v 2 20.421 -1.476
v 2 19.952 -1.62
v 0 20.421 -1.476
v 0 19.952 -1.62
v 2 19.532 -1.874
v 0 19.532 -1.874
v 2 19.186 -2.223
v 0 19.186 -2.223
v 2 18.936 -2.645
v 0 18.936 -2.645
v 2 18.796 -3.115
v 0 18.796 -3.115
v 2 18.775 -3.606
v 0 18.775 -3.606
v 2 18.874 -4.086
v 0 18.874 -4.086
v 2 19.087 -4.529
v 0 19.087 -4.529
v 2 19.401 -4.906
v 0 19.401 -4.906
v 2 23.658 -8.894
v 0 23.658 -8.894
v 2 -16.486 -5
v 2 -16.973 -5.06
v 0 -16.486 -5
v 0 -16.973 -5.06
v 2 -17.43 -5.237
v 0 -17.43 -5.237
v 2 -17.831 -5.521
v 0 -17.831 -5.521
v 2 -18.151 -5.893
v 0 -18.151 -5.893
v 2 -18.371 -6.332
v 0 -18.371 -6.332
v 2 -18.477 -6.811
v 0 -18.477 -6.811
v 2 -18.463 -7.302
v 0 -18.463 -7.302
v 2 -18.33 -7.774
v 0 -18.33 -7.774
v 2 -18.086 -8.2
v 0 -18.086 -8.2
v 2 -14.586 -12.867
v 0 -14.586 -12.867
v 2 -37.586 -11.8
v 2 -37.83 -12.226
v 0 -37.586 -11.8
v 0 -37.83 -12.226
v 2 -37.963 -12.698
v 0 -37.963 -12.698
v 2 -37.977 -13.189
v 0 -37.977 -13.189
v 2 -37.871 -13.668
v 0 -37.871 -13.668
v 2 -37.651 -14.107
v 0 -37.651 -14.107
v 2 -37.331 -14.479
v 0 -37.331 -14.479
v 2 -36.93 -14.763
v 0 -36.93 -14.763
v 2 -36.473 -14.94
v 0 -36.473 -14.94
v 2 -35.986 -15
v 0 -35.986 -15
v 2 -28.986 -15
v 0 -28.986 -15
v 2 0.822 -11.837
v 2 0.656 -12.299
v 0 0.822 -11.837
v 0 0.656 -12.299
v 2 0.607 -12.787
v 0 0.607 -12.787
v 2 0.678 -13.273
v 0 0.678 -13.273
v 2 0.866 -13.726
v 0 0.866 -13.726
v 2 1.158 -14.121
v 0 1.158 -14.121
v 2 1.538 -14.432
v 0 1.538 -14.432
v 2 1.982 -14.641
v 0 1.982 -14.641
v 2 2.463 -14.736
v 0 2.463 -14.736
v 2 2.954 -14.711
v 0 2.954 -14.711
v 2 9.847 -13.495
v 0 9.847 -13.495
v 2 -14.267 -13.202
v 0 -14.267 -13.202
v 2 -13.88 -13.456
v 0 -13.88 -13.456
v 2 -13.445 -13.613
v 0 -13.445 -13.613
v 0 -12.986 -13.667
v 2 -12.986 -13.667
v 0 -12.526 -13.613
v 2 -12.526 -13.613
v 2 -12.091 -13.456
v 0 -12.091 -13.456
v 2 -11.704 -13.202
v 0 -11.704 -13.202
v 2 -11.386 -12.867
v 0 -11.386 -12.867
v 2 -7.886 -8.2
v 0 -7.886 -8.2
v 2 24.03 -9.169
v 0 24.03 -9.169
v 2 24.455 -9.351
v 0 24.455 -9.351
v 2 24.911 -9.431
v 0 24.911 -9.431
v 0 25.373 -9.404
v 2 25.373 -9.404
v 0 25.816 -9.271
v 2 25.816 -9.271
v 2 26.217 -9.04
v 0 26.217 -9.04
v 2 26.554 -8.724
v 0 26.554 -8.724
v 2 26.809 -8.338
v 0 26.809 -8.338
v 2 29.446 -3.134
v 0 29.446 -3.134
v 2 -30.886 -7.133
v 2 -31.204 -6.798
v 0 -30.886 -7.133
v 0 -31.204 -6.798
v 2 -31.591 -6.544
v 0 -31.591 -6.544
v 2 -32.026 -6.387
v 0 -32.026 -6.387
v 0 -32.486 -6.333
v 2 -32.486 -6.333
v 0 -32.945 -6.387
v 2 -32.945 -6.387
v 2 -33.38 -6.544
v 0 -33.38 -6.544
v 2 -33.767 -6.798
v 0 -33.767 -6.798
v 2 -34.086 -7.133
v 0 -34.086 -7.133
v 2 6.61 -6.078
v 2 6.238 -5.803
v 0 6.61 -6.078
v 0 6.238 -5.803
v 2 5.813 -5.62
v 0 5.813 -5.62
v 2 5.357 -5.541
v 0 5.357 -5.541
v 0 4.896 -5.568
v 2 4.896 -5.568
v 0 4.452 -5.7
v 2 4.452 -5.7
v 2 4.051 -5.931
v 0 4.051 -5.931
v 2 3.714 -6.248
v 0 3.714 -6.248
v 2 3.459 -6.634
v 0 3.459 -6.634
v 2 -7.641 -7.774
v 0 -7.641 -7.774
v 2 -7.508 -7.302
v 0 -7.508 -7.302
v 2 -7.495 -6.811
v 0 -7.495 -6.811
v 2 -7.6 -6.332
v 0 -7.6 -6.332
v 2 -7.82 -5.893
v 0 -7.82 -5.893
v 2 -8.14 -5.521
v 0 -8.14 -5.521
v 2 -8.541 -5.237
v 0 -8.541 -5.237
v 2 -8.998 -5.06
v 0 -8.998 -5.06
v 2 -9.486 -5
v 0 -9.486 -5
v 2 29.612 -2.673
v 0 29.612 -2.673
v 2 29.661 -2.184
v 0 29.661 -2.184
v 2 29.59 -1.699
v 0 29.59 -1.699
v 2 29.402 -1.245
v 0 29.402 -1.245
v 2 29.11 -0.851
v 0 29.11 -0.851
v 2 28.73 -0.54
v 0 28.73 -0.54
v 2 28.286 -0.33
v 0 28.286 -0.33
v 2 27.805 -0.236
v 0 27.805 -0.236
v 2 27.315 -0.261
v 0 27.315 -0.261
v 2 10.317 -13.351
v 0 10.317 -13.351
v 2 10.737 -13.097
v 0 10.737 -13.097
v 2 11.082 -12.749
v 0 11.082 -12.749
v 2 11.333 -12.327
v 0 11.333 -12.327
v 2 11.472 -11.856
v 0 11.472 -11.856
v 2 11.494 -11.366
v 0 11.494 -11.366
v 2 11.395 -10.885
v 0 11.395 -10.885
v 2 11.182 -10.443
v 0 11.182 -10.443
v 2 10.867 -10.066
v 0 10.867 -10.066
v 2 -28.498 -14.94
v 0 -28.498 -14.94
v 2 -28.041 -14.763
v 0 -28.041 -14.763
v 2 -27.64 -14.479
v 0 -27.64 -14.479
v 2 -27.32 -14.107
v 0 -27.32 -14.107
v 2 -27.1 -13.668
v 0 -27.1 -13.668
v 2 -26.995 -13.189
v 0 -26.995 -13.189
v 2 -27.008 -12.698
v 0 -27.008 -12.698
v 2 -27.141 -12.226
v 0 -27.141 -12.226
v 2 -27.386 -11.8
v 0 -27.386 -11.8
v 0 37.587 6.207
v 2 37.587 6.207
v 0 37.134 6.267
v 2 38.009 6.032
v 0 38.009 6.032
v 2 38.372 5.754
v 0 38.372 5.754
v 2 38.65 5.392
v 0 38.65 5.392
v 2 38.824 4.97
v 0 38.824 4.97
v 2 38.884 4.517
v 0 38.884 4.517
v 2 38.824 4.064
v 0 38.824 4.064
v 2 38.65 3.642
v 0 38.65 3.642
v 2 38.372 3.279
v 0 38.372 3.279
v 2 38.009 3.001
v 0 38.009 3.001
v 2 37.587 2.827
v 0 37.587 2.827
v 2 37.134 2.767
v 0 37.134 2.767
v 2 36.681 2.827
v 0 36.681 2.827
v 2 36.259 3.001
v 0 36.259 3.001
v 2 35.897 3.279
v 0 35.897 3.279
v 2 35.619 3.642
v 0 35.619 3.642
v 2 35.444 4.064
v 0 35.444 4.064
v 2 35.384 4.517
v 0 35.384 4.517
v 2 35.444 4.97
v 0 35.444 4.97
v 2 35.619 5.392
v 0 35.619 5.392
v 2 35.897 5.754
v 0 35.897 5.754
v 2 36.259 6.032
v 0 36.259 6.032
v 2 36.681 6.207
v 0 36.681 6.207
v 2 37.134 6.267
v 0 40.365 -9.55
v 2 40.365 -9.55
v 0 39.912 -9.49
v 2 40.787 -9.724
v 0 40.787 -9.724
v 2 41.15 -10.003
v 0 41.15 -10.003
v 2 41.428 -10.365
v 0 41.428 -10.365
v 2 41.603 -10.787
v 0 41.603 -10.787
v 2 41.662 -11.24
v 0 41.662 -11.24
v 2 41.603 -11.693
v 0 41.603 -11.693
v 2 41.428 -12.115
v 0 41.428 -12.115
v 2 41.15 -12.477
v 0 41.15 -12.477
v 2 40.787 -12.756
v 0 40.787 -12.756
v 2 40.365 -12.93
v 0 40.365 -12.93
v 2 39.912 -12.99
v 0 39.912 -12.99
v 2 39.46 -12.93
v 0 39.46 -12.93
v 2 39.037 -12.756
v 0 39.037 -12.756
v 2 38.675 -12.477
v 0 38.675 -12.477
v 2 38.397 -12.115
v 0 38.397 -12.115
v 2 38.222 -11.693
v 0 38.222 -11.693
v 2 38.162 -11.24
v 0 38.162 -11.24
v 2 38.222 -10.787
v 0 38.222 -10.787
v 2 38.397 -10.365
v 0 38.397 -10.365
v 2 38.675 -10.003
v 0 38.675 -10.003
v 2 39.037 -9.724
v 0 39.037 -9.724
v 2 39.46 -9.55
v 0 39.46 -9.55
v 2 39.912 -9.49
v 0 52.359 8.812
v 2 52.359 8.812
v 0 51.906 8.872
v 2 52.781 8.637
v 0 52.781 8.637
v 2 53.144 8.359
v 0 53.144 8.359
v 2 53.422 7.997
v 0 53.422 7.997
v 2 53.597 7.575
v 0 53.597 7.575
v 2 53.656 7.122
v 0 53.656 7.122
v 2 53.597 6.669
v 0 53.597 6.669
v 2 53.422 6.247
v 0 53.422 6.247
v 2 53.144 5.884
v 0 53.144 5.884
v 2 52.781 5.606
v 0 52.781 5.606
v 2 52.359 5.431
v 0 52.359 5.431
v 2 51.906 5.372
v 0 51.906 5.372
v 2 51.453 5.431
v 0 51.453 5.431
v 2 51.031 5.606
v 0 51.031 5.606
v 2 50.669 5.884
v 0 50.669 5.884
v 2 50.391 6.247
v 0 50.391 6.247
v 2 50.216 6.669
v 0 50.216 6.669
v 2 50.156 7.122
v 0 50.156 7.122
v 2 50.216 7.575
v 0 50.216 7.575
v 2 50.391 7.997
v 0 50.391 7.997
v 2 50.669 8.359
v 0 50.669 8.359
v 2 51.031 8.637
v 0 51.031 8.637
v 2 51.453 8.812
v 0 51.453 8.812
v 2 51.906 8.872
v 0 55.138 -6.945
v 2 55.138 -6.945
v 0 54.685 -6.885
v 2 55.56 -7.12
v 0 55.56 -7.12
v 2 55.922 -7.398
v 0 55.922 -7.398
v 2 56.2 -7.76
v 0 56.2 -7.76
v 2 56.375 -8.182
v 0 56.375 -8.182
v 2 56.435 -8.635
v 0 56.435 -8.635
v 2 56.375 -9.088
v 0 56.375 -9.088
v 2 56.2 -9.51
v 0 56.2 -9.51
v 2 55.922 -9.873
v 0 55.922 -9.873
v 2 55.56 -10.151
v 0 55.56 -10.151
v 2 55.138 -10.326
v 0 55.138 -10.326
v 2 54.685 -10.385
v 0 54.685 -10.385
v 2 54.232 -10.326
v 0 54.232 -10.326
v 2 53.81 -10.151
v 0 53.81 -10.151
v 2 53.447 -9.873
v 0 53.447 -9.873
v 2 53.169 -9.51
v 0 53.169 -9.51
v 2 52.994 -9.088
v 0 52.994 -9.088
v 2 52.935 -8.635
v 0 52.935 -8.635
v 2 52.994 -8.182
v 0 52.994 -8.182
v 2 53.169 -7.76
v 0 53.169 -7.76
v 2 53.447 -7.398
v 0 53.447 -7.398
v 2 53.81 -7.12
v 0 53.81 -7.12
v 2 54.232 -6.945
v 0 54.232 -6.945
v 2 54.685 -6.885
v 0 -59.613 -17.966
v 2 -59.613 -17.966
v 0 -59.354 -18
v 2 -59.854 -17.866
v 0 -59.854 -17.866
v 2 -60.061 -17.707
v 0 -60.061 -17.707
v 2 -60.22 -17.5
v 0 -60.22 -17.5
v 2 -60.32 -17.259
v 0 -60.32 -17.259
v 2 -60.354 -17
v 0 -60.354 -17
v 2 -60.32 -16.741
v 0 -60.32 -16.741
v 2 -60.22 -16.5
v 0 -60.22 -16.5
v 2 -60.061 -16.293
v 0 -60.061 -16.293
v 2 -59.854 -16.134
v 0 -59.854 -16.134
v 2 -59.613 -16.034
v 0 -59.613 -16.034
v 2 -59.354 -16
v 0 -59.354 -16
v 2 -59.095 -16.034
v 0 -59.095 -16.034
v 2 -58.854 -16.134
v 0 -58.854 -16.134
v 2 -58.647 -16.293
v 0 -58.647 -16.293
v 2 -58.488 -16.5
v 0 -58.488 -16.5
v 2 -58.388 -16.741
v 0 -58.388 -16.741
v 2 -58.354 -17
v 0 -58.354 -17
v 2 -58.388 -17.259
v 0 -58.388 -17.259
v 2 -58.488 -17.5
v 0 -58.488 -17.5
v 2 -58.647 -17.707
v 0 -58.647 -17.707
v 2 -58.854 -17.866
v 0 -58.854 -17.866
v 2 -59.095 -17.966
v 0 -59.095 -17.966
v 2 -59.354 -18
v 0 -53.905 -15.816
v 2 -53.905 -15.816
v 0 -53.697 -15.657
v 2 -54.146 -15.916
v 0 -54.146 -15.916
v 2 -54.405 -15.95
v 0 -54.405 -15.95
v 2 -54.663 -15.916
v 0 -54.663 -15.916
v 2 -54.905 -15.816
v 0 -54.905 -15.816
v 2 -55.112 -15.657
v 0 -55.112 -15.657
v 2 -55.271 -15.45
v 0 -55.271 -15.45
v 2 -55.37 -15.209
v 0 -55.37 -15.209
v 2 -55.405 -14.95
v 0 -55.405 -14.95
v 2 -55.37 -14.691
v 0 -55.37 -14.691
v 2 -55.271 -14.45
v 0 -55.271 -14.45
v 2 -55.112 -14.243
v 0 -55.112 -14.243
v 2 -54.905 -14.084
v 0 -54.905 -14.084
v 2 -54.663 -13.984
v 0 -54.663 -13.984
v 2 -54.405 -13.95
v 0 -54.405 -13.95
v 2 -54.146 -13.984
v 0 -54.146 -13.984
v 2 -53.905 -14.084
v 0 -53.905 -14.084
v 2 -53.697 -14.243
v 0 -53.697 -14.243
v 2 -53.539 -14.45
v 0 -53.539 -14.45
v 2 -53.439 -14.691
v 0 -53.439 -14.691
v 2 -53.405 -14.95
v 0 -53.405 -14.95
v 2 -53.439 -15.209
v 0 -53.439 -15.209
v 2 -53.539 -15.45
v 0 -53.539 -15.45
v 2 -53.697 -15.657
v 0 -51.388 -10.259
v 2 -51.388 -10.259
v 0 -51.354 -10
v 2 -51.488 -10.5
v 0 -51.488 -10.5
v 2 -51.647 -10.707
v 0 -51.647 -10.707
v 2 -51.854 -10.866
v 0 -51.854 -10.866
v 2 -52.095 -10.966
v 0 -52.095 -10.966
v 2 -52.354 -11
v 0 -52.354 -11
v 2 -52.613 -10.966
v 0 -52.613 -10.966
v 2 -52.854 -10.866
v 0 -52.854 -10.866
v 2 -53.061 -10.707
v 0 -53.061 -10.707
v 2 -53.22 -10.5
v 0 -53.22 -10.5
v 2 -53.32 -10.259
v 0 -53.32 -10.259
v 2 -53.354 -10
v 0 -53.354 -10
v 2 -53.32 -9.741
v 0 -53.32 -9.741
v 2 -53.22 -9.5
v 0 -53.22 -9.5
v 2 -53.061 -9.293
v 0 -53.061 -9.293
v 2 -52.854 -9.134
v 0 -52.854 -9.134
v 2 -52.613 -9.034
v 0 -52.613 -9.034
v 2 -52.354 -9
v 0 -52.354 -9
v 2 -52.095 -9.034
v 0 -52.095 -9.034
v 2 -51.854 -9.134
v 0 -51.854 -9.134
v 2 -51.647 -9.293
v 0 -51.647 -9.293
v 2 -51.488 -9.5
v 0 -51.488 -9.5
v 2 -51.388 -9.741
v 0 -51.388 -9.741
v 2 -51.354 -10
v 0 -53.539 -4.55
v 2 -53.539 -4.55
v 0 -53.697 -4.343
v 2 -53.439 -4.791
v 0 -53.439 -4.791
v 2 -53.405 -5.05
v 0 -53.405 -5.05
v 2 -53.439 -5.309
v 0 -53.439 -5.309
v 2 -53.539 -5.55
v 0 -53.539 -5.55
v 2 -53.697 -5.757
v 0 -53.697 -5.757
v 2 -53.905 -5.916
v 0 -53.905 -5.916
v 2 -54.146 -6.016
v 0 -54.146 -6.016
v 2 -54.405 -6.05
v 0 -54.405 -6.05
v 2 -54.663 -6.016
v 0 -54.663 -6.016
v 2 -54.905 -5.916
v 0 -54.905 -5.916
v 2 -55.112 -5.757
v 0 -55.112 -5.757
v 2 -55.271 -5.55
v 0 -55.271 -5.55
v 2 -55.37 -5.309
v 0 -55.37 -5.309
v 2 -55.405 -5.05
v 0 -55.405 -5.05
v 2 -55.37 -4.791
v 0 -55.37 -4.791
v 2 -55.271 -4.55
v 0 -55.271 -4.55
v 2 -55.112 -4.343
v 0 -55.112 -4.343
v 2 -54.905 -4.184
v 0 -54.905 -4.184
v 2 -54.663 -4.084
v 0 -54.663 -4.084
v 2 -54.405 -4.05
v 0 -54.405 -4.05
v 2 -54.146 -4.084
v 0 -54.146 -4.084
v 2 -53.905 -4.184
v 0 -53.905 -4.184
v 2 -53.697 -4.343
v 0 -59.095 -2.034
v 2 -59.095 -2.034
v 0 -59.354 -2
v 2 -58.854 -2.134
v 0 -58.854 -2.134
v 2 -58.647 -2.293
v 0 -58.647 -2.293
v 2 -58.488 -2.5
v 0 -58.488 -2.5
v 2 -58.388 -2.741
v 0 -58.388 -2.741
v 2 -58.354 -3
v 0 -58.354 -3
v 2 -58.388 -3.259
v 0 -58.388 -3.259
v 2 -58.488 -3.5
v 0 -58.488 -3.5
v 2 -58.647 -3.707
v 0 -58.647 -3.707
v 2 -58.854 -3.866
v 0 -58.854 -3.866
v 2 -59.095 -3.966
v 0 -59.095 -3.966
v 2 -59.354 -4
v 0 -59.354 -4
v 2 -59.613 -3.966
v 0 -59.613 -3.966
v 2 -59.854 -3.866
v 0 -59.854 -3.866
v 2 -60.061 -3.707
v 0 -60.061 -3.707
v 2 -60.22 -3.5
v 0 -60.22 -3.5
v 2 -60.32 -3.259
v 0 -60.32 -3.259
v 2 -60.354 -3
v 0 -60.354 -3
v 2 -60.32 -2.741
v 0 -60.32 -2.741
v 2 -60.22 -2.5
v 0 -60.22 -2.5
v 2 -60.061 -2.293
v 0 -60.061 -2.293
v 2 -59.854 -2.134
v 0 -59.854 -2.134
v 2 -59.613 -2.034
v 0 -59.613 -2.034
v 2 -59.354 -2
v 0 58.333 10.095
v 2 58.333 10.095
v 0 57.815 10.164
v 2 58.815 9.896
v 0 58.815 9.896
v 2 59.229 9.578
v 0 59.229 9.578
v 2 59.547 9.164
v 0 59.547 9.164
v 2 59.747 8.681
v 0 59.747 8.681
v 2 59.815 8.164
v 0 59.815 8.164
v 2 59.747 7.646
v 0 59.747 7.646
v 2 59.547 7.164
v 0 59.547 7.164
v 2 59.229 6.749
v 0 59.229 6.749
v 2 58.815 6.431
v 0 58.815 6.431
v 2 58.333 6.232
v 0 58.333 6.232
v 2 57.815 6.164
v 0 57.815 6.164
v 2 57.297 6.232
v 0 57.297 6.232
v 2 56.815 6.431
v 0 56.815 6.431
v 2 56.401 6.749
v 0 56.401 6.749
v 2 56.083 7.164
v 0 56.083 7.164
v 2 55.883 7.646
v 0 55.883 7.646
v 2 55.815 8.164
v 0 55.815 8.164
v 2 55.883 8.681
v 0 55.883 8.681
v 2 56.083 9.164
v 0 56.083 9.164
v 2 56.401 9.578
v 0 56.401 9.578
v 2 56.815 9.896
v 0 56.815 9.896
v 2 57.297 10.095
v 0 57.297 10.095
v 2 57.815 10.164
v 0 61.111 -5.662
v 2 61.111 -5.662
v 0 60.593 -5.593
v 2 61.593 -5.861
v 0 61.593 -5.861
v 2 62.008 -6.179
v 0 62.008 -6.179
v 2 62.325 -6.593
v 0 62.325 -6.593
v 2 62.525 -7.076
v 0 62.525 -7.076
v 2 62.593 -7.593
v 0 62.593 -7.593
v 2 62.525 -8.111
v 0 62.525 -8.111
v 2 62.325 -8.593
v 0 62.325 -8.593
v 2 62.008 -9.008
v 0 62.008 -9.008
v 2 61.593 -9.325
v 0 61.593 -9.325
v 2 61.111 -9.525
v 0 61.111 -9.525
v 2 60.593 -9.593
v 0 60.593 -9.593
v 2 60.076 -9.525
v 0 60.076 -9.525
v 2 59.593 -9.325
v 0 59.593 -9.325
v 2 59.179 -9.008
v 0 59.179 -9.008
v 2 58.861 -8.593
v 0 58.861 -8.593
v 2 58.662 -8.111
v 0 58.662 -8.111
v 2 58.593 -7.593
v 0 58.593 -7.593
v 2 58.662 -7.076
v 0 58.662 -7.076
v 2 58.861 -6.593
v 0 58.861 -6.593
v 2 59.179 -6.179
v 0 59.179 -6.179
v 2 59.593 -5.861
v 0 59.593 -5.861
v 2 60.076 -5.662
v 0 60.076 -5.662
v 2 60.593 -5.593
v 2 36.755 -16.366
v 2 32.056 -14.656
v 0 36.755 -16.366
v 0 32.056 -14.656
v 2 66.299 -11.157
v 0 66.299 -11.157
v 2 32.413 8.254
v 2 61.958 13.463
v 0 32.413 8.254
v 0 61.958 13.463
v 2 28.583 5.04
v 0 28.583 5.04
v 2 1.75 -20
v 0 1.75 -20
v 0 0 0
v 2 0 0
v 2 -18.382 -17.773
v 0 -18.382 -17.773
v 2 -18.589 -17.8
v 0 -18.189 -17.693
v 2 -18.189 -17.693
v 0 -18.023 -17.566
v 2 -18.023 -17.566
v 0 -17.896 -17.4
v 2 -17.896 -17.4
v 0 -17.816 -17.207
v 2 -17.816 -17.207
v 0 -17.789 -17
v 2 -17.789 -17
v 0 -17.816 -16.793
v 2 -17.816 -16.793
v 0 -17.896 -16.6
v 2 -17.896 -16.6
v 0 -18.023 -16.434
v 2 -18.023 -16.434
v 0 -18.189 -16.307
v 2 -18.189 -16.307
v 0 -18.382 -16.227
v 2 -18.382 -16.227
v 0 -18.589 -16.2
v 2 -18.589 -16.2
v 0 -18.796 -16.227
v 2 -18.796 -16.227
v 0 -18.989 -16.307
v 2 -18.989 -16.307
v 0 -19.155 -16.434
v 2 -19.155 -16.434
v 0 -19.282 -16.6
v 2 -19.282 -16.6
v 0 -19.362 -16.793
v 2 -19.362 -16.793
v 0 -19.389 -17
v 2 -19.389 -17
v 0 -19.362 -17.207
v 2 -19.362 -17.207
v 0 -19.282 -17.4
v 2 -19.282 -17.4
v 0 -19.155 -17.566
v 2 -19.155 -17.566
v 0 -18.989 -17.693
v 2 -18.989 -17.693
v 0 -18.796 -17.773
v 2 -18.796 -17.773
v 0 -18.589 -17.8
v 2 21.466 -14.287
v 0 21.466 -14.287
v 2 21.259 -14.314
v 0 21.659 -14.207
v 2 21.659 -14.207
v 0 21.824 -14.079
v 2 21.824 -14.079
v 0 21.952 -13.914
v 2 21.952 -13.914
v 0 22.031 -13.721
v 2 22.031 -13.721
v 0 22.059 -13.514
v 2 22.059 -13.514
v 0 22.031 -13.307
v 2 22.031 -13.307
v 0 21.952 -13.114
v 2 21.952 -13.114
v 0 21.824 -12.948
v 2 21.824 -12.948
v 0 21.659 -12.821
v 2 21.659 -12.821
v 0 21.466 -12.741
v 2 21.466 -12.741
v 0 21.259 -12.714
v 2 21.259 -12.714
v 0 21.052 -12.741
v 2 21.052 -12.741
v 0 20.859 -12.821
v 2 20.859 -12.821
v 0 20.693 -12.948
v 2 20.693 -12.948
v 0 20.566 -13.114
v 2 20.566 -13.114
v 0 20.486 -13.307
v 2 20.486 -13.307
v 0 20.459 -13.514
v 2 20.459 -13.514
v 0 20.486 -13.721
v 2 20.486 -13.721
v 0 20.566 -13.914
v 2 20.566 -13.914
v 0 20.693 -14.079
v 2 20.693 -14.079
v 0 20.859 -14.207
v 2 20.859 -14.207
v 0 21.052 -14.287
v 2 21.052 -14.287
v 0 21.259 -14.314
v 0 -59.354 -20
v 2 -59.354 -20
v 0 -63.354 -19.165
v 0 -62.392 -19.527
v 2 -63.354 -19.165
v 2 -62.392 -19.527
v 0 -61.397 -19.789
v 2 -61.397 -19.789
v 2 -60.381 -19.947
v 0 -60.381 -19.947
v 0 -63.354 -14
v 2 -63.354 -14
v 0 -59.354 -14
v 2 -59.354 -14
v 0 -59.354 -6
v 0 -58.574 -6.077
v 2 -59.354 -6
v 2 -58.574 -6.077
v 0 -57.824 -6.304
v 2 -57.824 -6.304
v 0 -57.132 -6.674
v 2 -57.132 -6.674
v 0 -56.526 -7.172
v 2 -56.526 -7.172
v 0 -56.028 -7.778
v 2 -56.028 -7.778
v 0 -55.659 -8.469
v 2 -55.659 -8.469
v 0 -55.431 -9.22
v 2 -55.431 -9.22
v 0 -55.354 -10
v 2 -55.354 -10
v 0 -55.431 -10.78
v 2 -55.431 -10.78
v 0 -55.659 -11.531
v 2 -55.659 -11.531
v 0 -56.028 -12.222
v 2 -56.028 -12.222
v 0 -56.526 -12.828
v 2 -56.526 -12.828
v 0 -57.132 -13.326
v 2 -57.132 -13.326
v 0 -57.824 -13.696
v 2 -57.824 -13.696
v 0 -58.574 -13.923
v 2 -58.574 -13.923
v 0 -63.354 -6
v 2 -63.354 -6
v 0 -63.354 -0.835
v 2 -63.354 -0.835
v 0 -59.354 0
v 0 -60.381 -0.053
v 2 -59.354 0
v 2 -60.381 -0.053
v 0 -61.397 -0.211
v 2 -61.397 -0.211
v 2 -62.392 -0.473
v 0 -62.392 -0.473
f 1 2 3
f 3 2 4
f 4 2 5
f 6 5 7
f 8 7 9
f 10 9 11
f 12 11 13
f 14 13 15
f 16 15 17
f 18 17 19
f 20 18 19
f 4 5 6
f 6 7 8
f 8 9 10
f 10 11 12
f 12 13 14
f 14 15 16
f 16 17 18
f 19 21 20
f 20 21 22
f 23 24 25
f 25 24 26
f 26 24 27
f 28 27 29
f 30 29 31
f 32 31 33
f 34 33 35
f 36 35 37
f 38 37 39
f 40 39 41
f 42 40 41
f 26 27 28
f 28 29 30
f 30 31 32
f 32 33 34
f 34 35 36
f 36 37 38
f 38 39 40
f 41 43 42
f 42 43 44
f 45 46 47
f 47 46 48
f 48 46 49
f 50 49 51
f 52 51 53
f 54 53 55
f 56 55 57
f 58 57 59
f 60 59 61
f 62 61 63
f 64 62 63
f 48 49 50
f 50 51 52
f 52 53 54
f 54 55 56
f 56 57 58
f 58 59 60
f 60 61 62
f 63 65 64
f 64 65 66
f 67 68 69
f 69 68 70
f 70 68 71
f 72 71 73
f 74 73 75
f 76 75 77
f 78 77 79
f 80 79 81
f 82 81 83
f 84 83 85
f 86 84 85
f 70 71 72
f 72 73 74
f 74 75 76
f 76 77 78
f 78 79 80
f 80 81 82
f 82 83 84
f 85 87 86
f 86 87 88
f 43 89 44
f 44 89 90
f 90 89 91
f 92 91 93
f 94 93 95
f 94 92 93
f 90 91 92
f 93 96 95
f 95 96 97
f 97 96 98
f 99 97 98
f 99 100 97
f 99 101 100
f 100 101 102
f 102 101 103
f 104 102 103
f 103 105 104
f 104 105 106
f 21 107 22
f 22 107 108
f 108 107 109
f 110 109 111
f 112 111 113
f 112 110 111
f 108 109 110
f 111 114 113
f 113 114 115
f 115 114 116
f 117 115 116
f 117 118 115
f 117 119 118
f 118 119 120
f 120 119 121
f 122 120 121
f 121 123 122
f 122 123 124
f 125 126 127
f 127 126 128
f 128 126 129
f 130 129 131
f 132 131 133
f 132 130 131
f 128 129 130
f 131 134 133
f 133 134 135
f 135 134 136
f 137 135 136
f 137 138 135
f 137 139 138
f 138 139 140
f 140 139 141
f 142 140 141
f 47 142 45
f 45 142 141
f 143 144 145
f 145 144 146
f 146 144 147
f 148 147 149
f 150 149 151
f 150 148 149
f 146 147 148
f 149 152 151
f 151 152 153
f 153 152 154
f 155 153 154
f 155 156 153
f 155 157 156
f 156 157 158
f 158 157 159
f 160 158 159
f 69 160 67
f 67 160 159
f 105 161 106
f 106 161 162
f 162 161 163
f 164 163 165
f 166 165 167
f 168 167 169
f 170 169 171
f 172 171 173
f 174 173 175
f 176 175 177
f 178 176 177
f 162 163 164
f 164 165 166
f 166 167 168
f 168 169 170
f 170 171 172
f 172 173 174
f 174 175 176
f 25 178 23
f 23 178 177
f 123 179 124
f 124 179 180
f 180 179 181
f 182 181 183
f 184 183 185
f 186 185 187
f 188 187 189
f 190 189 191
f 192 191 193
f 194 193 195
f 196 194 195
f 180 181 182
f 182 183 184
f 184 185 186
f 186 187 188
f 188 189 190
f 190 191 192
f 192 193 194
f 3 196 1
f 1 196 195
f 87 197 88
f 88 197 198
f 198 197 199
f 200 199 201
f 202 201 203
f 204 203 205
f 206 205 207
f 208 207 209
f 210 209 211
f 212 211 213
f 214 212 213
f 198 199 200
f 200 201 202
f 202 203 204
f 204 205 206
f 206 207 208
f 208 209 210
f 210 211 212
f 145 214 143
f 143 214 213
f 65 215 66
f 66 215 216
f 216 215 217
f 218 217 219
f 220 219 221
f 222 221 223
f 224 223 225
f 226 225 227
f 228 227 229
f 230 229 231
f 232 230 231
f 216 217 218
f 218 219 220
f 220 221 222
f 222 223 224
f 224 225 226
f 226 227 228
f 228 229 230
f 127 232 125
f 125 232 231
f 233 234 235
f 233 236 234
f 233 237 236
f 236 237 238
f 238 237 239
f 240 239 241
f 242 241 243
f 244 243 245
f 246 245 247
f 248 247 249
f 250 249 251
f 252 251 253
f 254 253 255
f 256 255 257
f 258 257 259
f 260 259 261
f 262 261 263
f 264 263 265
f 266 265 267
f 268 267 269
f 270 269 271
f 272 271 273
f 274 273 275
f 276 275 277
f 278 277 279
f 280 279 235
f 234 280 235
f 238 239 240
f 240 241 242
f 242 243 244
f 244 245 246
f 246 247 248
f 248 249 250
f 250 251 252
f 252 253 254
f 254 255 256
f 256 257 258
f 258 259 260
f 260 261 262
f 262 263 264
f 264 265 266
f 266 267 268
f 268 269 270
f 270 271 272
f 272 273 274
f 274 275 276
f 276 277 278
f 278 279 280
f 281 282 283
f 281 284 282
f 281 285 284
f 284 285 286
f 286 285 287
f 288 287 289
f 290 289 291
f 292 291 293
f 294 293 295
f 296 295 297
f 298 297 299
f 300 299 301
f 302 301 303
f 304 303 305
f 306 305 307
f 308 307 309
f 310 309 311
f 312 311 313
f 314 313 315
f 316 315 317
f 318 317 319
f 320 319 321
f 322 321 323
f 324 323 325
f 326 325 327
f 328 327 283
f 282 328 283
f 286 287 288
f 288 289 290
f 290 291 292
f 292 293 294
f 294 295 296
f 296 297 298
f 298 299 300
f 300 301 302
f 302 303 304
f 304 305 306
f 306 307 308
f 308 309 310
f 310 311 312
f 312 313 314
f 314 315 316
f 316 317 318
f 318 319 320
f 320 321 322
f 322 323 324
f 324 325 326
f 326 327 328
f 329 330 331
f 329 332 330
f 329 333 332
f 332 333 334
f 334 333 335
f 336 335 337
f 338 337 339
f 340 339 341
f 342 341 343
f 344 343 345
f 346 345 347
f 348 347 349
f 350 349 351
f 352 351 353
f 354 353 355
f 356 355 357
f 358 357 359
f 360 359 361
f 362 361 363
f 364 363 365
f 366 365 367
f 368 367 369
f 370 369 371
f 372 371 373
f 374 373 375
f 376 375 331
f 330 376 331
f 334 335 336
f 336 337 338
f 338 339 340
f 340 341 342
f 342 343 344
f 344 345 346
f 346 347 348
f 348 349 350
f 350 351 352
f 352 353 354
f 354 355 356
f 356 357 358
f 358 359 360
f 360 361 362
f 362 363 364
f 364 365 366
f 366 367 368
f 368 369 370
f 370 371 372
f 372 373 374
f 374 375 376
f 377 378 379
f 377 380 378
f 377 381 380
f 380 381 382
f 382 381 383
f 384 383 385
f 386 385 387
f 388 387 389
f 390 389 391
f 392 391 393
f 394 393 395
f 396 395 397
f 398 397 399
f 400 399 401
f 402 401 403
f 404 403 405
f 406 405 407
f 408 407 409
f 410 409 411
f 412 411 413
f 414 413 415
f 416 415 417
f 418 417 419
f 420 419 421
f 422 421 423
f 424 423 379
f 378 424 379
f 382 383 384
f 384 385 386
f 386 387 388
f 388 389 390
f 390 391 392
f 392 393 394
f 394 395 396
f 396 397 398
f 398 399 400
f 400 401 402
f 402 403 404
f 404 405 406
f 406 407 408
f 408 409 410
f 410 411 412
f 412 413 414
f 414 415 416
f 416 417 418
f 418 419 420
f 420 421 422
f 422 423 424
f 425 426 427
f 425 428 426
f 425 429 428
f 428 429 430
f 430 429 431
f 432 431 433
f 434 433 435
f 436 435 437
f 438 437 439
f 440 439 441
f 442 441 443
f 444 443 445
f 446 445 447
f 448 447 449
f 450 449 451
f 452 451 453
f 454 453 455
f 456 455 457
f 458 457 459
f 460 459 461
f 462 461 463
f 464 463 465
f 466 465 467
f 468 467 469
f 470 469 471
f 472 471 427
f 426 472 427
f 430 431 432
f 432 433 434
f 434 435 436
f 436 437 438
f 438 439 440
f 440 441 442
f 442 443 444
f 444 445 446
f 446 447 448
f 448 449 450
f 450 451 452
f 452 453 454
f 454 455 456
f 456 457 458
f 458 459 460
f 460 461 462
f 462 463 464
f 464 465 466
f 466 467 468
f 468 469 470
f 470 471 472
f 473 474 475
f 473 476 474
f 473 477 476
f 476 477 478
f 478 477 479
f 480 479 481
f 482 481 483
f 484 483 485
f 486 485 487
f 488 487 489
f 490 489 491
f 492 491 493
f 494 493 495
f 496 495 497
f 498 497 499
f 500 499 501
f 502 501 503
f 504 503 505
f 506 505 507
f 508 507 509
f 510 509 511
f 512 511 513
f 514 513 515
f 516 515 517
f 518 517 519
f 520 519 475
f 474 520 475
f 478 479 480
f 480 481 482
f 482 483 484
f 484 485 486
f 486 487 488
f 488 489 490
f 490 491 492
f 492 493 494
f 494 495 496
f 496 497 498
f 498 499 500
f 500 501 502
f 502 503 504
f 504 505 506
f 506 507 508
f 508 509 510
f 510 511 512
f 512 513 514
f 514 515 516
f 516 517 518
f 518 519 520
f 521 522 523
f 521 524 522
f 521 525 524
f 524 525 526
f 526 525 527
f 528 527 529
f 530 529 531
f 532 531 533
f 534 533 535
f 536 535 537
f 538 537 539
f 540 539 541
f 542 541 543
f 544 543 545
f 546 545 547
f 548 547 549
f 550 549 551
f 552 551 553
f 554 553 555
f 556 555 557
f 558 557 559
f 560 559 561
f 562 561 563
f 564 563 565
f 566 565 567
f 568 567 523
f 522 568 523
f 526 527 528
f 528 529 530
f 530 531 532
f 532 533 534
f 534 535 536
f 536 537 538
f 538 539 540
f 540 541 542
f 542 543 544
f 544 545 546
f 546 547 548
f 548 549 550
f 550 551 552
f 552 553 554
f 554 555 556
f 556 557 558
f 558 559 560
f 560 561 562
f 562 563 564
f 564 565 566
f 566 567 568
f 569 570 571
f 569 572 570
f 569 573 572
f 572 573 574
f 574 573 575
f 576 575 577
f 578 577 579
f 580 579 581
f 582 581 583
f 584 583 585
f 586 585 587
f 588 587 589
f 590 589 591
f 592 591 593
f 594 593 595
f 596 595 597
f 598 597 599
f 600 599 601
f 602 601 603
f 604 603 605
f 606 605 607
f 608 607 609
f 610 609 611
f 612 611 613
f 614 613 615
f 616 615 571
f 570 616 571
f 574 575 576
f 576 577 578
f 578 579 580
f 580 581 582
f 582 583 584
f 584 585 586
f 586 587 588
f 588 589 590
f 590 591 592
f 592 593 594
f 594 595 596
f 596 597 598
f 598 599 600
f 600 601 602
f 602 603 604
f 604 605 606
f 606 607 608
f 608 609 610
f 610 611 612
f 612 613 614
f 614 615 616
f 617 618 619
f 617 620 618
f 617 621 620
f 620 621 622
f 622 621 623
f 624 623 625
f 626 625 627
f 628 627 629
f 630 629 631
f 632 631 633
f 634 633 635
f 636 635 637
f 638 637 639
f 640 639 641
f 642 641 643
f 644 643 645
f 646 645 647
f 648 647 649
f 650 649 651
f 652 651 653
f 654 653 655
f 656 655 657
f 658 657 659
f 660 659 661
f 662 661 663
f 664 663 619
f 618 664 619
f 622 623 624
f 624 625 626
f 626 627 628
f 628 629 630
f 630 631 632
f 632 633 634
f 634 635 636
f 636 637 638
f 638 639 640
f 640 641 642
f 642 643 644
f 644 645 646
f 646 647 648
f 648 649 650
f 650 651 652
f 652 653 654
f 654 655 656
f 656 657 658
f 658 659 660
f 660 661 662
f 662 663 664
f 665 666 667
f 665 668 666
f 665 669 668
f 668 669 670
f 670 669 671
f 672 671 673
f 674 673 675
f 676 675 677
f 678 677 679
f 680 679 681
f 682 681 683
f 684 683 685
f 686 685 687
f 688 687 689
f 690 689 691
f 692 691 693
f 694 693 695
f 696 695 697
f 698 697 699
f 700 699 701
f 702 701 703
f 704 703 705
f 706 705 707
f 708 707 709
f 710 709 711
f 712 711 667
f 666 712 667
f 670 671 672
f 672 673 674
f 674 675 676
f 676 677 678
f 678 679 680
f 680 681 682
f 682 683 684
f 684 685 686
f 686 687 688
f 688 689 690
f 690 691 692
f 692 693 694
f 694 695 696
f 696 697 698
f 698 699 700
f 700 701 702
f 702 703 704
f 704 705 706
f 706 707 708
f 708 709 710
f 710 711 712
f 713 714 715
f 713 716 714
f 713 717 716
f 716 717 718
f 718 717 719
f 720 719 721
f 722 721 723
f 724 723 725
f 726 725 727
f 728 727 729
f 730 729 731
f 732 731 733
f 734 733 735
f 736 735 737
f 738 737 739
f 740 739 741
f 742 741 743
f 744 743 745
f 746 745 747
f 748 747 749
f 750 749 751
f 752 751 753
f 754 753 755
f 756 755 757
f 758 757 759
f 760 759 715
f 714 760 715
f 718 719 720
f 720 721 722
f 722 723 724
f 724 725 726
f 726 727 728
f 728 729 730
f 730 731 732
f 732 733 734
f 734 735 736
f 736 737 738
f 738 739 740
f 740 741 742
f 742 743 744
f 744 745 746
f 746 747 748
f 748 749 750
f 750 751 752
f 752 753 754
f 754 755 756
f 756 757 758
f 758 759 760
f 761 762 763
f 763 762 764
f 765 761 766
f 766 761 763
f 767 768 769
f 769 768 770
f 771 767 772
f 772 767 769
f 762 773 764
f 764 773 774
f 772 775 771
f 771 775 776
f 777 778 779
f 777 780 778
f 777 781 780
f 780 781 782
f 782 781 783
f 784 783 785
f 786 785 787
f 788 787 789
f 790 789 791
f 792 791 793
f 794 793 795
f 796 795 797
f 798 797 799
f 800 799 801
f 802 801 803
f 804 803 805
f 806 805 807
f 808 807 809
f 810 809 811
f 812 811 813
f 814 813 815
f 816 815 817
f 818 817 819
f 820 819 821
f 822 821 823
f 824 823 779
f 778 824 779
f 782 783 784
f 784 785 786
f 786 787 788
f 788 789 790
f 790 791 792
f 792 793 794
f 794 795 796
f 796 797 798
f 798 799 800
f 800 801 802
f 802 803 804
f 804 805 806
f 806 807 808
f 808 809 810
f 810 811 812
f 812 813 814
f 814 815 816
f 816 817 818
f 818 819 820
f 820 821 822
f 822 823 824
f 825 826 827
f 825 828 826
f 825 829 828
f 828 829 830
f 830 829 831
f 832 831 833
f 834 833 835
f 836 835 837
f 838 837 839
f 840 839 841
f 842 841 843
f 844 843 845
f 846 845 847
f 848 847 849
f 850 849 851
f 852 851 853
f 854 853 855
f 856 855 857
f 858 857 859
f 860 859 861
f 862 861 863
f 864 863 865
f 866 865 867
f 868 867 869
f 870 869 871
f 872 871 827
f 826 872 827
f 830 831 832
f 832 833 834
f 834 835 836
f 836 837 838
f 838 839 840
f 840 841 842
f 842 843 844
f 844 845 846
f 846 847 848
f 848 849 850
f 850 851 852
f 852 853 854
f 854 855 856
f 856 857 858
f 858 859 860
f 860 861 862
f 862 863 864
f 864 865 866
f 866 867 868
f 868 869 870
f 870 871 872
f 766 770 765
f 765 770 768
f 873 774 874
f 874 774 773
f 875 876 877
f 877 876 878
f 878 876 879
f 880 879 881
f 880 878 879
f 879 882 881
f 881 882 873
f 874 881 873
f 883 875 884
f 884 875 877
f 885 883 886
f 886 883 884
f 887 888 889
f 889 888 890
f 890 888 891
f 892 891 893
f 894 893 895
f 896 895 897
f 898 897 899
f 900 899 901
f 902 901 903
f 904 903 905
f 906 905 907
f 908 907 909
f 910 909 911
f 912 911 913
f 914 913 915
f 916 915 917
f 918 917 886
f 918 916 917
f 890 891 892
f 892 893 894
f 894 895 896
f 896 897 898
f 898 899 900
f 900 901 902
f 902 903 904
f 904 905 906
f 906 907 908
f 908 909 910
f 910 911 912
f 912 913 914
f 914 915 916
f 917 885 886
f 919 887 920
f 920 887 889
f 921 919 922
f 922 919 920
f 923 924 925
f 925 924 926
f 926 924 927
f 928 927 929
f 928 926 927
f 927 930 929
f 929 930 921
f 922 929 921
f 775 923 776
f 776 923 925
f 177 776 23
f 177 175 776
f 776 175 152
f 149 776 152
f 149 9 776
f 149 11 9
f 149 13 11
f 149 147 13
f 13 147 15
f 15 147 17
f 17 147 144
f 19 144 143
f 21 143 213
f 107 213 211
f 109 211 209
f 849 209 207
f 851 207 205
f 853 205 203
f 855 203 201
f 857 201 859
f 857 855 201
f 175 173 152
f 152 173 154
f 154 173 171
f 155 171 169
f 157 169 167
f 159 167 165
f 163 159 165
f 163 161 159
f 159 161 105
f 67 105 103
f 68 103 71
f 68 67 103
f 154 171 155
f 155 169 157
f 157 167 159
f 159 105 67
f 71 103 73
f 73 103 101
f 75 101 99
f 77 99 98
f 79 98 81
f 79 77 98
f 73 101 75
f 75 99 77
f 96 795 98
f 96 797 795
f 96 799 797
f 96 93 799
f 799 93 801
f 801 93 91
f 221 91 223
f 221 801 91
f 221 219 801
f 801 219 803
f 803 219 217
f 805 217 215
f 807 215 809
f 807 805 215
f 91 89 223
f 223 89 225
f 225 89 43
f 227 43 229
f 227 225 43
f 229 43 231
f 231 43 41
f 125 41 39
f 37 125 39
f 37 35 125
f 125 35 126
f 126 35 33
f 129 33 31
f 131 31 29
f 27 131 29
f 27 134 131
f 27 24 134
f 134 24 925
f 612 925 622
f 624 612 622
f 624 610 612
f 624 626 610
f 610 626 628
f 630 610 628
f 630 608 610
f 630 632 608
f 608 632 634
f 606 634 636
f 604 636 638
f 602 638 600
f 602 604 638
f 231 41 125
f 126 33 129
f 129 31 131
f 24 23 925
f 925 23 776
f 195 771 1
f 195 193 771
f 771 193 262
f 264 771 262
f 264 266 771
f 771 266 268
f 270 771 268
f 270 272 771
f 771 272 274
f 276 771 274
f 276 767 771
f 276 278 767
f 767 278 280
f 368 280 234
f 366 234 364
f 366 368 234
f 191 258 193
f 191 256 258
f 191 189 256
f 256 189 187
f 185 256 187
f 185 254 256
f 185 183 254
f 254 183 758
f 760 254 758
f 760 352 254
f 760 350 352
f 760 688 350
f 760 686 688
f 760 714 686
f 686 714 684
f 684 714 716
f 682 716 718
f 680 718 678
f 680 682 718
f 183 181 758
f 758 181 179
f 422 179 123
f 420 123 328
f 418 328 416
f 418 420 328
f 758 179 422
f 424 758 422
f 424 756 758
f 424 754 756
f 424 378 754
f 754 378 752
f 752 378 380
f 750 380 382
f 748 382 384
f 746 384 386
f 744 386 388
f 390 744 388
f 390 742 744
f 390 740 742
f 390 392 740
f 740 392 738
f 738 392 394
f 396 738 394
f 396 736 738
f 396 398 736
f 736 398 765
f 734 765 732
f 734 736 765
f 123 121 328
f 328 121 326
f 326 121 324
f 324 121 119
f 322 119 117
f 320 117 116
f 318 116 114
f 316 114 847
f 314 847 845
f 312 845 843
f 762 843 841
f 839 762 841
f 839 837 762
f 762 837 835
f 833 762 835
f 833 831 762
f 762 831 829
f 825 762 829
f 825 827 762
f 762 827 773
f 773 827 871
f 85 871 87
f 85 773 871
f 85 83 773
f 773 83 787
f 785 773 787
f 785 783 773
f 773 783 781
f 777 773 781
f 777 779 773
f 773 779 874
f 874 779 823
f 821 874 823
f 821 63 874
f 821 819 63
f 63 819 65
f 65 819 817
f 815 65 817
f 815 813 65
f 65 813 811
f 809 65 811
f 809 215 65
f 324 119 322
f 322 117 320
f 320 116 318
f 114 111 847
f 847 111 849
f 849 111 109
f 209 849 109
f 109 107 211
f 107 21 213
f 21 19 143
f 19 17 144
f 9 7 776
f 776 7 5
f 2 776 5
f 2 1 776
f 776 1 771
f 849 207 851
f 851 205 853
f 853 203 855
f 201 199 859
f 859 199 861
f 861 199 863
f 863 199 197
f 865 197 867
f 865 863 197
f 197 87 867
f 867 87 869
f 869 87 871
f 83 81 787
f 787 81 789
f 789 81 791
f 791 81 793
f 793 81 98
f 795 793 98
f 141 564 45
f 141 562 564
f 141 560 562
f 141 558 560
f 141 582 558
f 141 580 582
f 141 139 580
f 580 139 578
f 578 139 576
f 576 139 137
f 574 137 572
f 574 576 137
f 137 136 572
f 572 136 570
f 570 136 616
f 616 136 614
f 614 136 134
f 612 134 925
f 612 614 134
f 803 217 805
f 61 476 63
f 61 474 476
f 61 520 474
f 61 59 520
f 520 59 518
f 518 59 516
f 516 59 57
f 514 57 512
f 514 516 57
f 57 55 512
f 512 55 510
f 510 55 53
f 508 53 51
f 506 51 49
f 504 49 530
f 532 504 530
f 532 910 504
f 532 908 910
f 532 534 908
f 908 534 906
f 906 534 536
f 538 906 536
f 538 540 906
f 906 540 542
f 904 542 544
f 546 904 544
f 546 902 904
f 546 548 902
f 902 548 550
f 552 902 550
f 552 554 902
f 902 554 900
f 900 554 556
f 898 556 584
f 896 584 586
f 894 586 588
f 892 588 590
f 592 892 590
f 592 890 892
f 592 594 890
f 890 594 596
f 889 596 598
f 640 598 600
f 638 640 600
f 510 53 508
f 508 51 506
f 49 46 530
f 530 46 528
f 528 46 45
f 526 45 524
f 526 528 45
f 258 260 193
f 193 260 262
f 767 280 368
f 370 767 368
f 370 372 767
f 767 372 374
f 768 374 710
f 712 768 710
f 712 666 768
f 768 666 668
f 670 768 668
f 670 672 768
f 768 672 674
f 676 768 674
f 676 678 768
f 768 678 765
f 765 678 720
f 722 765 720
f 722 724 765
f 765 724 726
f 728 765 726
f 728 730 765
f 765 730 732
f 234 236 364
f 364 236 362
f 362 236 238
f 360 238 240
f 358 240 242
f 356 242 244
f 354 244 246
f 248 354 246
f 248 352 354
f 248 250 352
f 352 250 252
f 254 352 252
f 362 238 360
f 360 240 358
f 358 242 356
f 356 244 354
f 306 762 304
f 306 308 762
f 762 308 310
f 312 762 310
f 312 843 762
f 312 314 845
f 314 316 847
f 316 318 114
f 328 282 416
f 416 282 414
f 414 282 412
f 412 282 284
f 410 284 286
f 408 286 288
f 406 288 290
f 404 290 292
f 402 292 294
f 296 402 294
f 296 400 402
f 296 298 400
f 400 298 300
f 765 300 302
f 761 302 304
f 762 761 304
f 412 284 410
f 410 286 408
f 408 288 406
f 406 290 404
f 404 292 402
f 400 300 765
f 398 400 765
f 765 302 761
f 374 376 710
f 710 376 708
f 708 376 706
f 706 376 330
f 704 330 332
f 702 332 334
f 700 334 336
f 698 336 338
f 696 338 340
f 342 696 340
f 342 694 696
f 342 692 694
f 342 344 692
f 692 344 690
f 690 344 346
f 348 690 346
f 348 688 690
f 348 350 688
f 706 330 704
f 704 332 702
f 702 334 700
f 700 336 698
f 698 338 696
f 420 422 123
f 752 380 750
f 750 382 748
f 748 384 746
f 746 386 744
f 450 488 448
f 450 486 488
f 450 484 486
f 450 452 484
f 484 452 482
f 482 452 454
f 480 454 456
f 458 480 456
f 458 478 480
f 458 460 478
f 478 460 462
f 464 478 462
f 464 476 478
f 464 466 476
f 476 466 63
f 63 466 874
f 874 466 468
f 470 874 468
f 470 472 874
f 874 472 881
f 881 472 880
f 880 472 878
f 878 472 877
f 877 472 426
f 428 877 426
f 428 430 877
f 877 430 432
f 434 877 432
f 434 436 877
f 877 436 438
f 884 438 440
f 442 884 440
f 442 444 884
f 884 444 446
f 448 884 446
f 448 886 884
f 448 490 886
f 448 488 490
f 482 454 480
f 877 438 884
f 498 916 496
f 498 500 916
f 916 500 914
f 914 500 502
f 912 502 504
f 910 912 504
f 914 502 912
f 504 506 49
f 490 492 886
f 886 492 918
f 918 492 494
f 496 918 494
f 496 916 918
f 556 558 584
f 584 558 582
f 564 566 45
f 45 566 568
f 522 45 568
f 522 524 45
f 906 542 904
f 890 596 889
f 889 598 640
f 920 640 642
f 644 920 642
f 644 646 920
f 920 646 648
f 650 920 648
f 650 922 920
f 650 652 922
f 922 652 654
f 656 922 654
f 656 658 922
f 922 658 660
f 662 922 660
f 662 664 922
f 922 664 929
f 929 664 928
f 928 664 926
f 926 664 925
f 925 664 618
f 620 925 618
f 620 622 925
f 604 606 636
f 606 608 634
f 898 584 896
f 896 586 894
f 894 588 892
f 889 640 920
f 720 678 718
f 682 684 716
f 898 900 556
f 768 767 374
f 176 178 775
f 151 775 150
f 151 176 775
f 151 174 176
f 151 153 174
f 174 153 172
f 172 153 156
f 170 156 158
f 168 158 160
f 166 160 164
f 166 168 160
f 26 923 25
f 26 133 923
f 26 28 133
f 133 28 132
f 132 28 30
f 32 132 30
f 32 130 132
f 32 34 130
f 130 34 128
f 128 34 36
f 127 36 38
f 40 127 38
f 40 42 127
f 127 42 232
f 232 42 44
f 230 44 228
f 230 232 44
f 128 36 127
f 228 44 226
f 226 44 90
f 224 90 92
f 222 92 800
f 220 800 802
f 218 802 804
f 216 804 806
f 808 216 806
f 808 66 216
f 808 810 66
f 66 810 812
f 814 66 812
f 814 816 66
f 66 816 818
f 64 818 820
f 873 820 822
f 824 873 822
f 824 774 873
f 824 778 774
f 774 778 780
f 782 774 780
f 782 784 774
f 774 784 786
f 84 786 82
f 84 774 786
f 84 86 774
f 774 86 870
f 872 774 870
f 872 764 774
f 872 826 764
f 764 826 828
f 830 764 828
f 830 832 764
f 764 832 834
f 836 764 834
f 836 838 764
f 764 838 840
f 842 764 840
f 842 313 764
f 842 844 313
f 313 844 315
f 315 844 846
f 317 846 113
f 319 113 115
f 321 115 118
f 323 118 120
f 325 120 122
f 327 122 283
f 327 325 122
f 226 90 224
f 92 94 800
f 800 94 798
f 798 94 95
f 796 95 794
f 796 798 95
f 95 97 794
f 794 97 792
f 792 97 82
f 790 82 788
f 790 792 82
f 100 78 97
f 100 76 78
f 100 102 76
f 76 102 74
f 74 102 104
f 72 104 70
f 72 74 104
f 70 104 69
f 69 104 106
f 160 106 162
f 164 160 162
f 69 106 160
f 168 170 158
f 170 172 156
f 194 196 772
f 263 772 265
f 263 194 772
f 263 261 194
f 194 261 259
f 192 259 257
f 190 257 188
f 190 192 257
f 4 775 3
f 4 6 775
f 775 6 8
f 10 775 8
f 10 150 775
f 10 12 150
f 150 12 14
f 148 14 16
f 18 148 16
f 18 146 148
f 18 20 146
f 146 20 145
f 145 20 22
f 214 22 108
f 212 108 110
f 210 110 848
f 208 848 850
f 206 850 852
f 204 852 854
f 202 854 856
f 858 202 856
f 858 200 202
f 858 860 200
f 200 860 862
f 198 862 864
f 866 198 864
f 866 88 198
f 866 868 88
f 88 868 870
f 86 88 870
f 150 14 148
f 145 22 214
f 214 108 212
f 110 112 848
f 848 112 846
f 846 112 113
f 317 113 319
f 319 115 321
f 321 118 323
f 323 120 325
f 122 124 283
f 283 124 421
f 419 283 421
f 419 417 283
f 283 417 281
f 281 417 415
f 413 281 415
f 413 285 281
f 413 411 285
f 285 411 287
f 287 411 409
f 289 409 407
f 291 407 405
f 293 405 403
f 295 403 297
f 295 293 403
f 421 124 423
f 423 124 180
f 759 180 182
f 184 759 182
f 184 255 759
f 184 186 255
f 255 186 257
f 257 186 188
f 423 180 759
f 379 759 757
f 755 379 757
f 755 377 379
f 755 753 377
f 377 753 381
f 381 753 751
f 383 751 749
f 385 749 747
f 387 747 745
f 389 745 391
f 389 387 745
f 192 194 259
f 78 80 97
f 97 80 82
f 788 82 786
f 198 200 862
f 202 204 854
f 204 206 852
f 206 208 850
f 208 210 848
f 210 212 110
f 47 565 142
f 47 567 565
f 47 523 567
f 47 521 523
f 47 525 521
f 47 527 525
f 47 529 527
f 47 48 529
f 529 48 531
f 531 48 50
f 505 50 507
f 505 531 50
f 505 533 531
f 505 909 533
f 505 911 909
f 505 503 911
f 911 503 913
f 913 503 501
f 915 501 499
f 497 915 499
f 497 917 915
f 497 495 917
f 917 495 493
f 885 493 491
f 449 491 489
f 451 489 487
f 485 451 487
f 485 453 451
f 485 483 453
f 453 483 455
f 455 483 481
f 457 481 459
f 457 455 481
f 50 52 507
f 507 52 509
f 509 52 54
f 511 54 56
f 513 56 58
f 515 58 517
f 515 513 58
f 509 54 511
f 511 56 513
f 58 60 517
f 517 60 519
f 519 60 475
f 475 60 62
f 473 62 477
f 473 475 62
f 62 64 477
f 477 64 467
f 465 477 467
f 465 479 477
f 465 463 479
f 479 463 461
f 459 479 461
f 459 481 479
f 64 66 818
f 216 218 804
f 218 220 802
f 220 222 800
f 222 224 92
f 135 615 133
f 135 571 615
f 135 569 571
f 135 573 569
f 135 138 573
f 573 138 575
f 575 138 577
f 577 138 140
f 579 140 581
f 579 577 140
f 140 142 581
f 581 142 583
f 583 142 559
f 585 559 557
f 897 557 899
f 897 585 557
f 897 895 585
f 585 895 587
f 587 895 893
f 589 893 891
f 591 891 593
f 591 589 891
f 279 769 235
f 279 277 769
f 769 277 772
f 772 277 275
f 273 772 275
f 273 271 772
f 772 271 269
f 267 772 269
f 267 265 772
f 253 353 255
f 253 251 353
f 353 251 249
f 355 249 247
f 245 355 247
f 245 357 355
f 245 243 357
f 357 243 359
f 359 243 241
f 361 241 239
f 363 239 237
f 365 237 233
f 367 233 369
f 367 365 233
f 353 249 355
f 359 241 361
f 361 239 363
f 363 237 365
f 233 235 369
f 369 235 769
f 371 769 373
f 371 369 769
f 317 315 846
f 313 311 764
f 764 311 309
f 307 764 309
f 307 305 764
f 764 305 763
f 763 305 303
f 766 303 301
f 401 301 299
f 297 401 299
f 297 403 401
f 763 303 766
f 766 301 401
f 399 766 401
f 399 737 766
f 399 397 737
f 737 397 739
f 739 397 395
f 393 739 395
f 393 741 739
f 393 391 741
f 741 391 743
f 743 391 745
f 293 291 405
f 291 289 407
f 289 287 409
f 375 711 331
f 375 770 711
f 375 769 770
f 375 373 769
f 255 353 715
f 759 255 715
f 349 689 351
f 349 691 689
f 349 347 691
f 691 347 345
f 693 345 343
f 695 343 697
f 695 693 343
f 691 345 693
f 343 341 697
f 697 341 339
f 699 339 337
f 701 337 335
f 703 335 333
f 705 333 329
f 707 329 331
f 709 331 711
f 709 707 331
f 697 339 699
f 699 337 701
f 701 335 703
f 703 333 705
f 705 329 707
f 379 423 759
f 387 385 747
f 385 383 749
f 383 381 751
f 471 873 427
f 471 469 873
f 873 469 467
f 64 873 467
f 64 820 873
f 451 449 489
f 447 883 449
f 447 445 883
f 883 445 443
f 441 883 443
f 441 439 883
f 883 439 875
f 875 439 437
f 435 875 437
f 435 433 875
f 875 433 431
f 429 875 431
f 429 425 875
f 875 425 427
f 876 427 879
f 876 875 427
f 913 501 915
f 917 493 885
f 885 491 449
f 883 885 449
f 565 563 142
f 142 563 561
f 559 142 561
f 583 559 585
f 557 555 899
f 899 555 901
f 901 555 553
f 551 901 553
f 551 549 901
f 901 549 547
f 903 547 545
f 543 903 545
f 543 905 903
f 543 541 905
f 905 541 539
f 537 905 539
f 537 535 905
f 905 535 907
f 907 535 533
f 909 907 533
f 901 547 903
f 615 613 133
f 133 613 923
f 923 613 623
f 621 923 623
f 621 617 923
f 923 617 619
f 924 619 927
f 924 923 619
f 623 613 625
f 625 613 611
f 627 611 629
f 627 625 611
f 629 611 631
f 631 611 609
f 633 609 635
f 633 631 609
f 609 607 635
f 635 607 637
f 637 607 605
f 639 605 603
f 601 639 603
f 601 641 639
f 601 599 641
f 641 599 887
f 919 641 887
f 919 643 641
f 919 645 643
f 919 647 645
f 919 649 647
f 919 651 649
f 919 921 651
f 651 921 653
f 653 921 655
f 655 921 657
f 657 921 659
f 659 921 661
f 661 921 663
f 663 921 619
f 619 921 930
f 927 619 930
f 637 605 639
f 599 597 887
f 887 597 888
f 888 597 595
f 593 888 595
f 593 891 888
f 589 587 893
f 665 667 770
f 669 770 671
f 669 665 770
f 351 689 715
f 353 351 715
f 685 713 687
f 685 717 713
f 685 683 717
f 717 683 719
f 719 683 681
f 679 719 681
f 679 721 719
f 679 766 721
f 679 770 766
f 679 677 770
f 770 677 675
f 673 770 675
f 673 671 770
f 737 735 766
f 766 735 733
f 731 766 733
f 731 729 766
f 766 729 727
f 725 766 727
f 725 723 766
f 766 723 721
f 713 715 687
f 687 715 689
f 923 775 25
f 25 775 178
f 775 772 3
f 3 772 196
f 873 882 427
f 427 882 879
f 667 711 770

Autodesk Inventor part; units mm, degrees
ref_plane "YZ Plane" through (0, 0, 0) normal (1, 0, 0) x (0, 1, 0)
ref_plane "XZ Plane" through (0, 0, 0) normal (0, 1, 0) x (-1, 0, 0)
ref_plane "XY Plane" through (0, 0, 0) normal (0, 0, 1) x (1, 0, 0)
sketch "スケッチ2" plane through (0, 0, 0) normal (1, 0, 0) x (0, 1, 0)
  line L0 (0, 0) -> (-59.3543, 0)
  line L1 (-59.3543, -20) -> (1.7498, -20)
  line L2 (0, 0) -> (58.4526, 10.3068)
  line L3 (61.9255, -9.3894) -> (1.7498, -20)
  arc A0 (62.5368, 10.1792) -> (58.4526, 10.3068) centre (60.1891, 0.4587) ccw
  arc A1 (61.9255, -9.3894) -> (65.7198, -7.8726) centre (60.1891, 0.4587) ccw
  arc A2 (-63.3543, -19.1652) -> (-59.3543, -20) centre (-59.3543, -10) ccw
  arc A3 (-59.3543, 0) -> (-63.3543, -0.8348) centre (-59.3543, -10) ccw
  arc A4 (-59.3543, -14) -> (-59.3543, -6) centre (-59.3543, -10) ccw
  line L4 (-59.3543, -6) -> (-63.3543, -6)
  line L5 (-59.3543, -14) -> (-63.3543, -14)
  line L6 (-63.3543, -0.8348) -> (-63.3543, -6)
  line L7 (-63.3543, -14) -> (-63.3543, -19.1652)
  line L8 (65.7198, -7.8726) -> (65.3114, -5.5567)
  line L9 (62.9451, 7.8632) -> (62.5368, 10.1792)
  line L10 (1.7498, -20) -> (0, 0)
  line L11 (65.3114, -5.5567) -> (62.9451, 7.8632)
  dimension "d21" = 20
  dimension "d22" = 10
  dimension "d23" = 170
  dimension "d27" = 10
  dimension "d31" = 8
  dimension "d33" = 4
  dimension "d35" = 4
  dimension "d36" = 120
  dimension "d139" = 20
extrude "押し出し1" add sketch "スケッチ2" along normal blind 2
sketch "スケッチ4" plane through (0, 0, 0) normal (-1, 0, 0) x (0, 0, 1)
  line L0 (-20, 1.7498) -> (-9.3894, 61.9255) projected
  line L1 (-20, -59.3543) -> (-20, 1.7498) projected
  circle A0 centre (-17, -18.5891) radius 1
  circle A1 centre (-13.5138, 21.2587) radius 1
  line L2 (-17, -18.5891) -> (-13.5138, 21.2587)
  line L3 (-20, 1.7498) -> (0, 0)
  dimension "d57" = 2
  dimension "d59" = 40
  dimension "d60" = 175
  dimension "d61" = 3
  dimension "d62" = 3
hole "穴2" at (0, -18.5891, -17) at (0, 21.2587, -13.5138) direction (1, 0, 0) diameter 1.6 end through all
sketch "スケッチ6" plane through (2, 0, 0) normal (1, 0, 0) x (0, 0, -1)
  line L0 (20, 1.7498) -> (9.3894, 61.9255) projected
  arc A0 (9.3894, 61.9255) -> (7.8726, 65.7198) centre (-0.4587, 60.1891) ccw projected
  line L1 (7.8726, 65.7198) -> (-10.1792, 62.5368) projected
  arc A1 (-10.1792, 62.5368) -> (-10.3068, 58.4526) centre (-0.4587, 60.1891) ccw projected
  line L2 (-10.3068, 58.4526) -> (0, 0) projected
  line L3 (-5.04, 28.5832) -> (-8.2539, 32.4135)
  line L4 (-10.1792, 62.5368) -> (-13.4634, 61.9577)
  line L5 (-13.4634, 61.9577) -> (-8.2539, 32.4135)
  line L6 (7.8726, 65.7198) -> (11.1568, 66.2989)
  line L7 (11.1568, 66.2989) -> (16.3663, 36.7547)
  line L8 (16.3663, 36.7547) -> (14.6562, 32.0562)
  dimension "d75" = 150
  dimension "d76" = 150
  dimension "d77" = 2.5
  dimension "d78" = 2.5
  dimension "d79" = 30
extrude "押し出し2" add sketch "スケッチ6" against normal blind 2
sketch "スケッチ5" plane through (2, 0, 0) normal (1, 0, 0) x (0, 0, -1)
  line L0 (7.8726, 65.7198) -> (-10.1792, 62.5368) projected
  circle A0 centre (-8.1635, 57.8151) radius 1.5
  circle A1 centre (7.5934, 60.5934) radius 1.5
  line L1 (14.6562, 32.0562) -> (20, 1.7498) projected
  line L2 (20, 1.7498) -> (20, -59.3543) projected
  arc A2 (19.1652, -63.3543) -> (20, -59.3543) centre (10, -59.3543) ccw projected
  line L3 (19.1652, -63.3543) -> (14, -63.3543) projected
  line L4 (14, -63.3543) -> (14, -59.3543) projected
  arc A3 (14, -59.3543) -> (6, -59.3543) centre (10, -59.3543) ccw projected
  line L5 (6, -59.3543) -> (6, -63.3543) projected
  line L6 (6, -63.3543) -> (0.8348, -63.3543) projected
  arc A4 (0, -59.3543) -> (0.8348, -63.3543) centre (10, -59.3543) ccw projected
  line L7 (0, -59.3543) -> (0, 0) projected
  line L8 (0, 0) -> (-5.04, 28.5832) projected
  circle A5 centre (17, -18.5891) radius 0.8 projected
  circle A6 centre (13.5138, 21.2587) radius 0.8 projected
  line L9 (-8.2539, 32.4135) -> (-13.4634, 61.9577) projected
  line L10 (-13.4634, 61.9577) -> (11.1568, 66.2989) projected
  line L11 (11.1568, 66.2989) -> (16.3663, 36.7547) projected
  line L12 (16.3663, 36.7547) -> (14.6562, 32.0562) projected
  line L13 (-5.04, 28.5832) -> (-8.2539, 32.4135) projected
  point P0 (3.5148, 90.434)
  point P1 (-14.537, 87.251)
  point P2 (-10.1792, 62.5368)
  dimension "d72" = 3
  dimension "d114" = 16
  dimension "d174" = 5
  dimension "d175" = 5
  dimension "d176" = 4.5
hole "穴3" at (2, 57.8151, 8.1635) at (2, 60.5934, -7.5934) direction (-1, 0, 0) diameter 4 end through all
sketch "スケッチ7" plane through (2, 0, 0) normal (1, 0, 0) x (0, 0, -1)
  arc A0 (0, -59.3543) -> (0.8348, -63.3543) centre (10, -59.3543) ccw projected
  line L0 (0.8348, -63.3543) -> (6, -63.3543) projected
  circle A1 centre (3, -59.3543) radius 1
  dimension "d89" = 4
  dimension "d90" = 7
  dimension "d91" = 2
hole "穴4" at (2, -59.3543, -3) direction (-1, 0, 0) diameter 2 end through all
pattern_circular "円形状パターン3" count 5 over 180 about axis through (0, -59.3543, -10) along (-1, 0, 0) of "穴4"
sketch "スケッチ8" plane through (2, 0, 0) normal (1, 0, 0) x (0, 0, -1)
  line L0 (11.1568, 66.2989) -> (-13.4634, 61.9577) projected
  line L1 (-13.4634, 61.9577) -> (-8.2539, 32.4135) projected
  circle A0 centre (-7.1216, 51.9062) radius 1.5
  circle A1 centre (8.6353, 54.6846) radius 1.5
  point P0 (7.8726, 65.7198)
  point P1 (-10.1792, 62.5368)
  dimension "d102" = 11
  dimension "d103" = 11
  dimension "d104" = 16
  dimension "d105" = 4.5
  dimension "d106" = 3
hole "穴5" at (2, 51.9062, 7.1216) at (2, 54.6846, -8.6353) direction (-1, 0, 0) diameter 3.5 end through all
sketch "スケッチ11" plane through (2, 0, 0) normal (1, 0, 0) x (0, 0, -1)
  circle A0 centre (-7.1216, 51.9062) radius 1.75 projected
  circle A1 centre (8.6353, 54.6846) radius 1.75 projected
  line L0 (-13.4634, 61.9577) -> (-8.2539, 32.4135) projected
  circle A2 centre (-4.5169, 37.1341) radius 1.5
  circle A3 centre (11.24, 39.9125) radius 1.5
  dimension "d124" = 3
  dimension "d126" = 16
  dimension "d127" = 15
  dimension "d128" = 4.5
  dimension "d130" = 15
hole "穴6" at (2, 37.1341, 4.5169) at (2, 39.9125, -11.24) direction (-1, 0, 0) diameter 3.5 end through all
sketch "スケッチ13" plane through (2, 0, 0) normal (1, 0, 0) x (0, 0, -1)
  line L0 (0, 0) -> (0, -59.3543) projected
  line L1 (20, -59.3543) -> (20, 1.7498) projected
  line L2 (20, 1.7498) -> (14.6562, 32.0562) projected
  line L3 (11.1568, 66.2989) -> (-13.4634, 61.9577) projected
  line L4 (-5.04, 28.5832) -> (0, 0) projected
  line L5 (-0.4338, 31.2538) -> (10.7167, 25.6042)
  line L6 (10.7167, 25.6042) -> (2.171, 16.4817)
  line L7 (2.171, 16.4817) -> (-0.4338, 31.2538)
  line L8 (4.2547, 4.664) -> (12.8005, 13.7865)
  line L9 (12.8005, 13.7865) -> (15.4052, -0.9856)
  line L10 (15.4052, -0.9856) -> (4.2547, 4.664)
  line L11 (5, -5.4856) -> (15, -12.9856)
  line L12 (5, -20.4856) -> (5, -5.4856)
  line L13 (15, -12.9856) -> (5, -20.4856)
  line L14 (5, -32.4856) -> (15, -24.9856)
  line L15 (15, -24.9856) -> (15, -39.9856)
  line L16 (15, -39.9856) -> (5, -32.4856)
  point P0 (9.3894, 61.9255)
  point P1 (7.8726, 65.7198)
  point P2 (-10.1792, 62.5368)
  point P3 (-10.3068, 58.4526)
  dimension "d147" = 5
  dimension "d149" = 5
  dimension "d160" = 5
  dimension "d162" = 40
  dimension "d163" = 52
  dimension "d164" = 12
  dimension "d166" = 5
  dimension "d177" = 10
  dimension "d178" = 15
  dimension "d179" = 12
extrude "押し出し5" cut sketch "スケッチ13" against normal blind 2
fillet "フィレット2" radius 2 12 edges at (1, -24.9856, -15) (1, 13.7865, -12.8005) (1, 31.2538, 0.4338) (1, -5.4856, -5) (1, 4.664, -4.2547) (1, -32.4856, -5) (1, 25.6042, -10.7167) (1, -12.9856, -15) (1, -0.9856, -15.4052) (1, -39.9856, -15) (1, -20.4856, -5) (1, 16.4817, -2.171)
properties part number "Arm_Link_1" material "アルミニウム 6061"
